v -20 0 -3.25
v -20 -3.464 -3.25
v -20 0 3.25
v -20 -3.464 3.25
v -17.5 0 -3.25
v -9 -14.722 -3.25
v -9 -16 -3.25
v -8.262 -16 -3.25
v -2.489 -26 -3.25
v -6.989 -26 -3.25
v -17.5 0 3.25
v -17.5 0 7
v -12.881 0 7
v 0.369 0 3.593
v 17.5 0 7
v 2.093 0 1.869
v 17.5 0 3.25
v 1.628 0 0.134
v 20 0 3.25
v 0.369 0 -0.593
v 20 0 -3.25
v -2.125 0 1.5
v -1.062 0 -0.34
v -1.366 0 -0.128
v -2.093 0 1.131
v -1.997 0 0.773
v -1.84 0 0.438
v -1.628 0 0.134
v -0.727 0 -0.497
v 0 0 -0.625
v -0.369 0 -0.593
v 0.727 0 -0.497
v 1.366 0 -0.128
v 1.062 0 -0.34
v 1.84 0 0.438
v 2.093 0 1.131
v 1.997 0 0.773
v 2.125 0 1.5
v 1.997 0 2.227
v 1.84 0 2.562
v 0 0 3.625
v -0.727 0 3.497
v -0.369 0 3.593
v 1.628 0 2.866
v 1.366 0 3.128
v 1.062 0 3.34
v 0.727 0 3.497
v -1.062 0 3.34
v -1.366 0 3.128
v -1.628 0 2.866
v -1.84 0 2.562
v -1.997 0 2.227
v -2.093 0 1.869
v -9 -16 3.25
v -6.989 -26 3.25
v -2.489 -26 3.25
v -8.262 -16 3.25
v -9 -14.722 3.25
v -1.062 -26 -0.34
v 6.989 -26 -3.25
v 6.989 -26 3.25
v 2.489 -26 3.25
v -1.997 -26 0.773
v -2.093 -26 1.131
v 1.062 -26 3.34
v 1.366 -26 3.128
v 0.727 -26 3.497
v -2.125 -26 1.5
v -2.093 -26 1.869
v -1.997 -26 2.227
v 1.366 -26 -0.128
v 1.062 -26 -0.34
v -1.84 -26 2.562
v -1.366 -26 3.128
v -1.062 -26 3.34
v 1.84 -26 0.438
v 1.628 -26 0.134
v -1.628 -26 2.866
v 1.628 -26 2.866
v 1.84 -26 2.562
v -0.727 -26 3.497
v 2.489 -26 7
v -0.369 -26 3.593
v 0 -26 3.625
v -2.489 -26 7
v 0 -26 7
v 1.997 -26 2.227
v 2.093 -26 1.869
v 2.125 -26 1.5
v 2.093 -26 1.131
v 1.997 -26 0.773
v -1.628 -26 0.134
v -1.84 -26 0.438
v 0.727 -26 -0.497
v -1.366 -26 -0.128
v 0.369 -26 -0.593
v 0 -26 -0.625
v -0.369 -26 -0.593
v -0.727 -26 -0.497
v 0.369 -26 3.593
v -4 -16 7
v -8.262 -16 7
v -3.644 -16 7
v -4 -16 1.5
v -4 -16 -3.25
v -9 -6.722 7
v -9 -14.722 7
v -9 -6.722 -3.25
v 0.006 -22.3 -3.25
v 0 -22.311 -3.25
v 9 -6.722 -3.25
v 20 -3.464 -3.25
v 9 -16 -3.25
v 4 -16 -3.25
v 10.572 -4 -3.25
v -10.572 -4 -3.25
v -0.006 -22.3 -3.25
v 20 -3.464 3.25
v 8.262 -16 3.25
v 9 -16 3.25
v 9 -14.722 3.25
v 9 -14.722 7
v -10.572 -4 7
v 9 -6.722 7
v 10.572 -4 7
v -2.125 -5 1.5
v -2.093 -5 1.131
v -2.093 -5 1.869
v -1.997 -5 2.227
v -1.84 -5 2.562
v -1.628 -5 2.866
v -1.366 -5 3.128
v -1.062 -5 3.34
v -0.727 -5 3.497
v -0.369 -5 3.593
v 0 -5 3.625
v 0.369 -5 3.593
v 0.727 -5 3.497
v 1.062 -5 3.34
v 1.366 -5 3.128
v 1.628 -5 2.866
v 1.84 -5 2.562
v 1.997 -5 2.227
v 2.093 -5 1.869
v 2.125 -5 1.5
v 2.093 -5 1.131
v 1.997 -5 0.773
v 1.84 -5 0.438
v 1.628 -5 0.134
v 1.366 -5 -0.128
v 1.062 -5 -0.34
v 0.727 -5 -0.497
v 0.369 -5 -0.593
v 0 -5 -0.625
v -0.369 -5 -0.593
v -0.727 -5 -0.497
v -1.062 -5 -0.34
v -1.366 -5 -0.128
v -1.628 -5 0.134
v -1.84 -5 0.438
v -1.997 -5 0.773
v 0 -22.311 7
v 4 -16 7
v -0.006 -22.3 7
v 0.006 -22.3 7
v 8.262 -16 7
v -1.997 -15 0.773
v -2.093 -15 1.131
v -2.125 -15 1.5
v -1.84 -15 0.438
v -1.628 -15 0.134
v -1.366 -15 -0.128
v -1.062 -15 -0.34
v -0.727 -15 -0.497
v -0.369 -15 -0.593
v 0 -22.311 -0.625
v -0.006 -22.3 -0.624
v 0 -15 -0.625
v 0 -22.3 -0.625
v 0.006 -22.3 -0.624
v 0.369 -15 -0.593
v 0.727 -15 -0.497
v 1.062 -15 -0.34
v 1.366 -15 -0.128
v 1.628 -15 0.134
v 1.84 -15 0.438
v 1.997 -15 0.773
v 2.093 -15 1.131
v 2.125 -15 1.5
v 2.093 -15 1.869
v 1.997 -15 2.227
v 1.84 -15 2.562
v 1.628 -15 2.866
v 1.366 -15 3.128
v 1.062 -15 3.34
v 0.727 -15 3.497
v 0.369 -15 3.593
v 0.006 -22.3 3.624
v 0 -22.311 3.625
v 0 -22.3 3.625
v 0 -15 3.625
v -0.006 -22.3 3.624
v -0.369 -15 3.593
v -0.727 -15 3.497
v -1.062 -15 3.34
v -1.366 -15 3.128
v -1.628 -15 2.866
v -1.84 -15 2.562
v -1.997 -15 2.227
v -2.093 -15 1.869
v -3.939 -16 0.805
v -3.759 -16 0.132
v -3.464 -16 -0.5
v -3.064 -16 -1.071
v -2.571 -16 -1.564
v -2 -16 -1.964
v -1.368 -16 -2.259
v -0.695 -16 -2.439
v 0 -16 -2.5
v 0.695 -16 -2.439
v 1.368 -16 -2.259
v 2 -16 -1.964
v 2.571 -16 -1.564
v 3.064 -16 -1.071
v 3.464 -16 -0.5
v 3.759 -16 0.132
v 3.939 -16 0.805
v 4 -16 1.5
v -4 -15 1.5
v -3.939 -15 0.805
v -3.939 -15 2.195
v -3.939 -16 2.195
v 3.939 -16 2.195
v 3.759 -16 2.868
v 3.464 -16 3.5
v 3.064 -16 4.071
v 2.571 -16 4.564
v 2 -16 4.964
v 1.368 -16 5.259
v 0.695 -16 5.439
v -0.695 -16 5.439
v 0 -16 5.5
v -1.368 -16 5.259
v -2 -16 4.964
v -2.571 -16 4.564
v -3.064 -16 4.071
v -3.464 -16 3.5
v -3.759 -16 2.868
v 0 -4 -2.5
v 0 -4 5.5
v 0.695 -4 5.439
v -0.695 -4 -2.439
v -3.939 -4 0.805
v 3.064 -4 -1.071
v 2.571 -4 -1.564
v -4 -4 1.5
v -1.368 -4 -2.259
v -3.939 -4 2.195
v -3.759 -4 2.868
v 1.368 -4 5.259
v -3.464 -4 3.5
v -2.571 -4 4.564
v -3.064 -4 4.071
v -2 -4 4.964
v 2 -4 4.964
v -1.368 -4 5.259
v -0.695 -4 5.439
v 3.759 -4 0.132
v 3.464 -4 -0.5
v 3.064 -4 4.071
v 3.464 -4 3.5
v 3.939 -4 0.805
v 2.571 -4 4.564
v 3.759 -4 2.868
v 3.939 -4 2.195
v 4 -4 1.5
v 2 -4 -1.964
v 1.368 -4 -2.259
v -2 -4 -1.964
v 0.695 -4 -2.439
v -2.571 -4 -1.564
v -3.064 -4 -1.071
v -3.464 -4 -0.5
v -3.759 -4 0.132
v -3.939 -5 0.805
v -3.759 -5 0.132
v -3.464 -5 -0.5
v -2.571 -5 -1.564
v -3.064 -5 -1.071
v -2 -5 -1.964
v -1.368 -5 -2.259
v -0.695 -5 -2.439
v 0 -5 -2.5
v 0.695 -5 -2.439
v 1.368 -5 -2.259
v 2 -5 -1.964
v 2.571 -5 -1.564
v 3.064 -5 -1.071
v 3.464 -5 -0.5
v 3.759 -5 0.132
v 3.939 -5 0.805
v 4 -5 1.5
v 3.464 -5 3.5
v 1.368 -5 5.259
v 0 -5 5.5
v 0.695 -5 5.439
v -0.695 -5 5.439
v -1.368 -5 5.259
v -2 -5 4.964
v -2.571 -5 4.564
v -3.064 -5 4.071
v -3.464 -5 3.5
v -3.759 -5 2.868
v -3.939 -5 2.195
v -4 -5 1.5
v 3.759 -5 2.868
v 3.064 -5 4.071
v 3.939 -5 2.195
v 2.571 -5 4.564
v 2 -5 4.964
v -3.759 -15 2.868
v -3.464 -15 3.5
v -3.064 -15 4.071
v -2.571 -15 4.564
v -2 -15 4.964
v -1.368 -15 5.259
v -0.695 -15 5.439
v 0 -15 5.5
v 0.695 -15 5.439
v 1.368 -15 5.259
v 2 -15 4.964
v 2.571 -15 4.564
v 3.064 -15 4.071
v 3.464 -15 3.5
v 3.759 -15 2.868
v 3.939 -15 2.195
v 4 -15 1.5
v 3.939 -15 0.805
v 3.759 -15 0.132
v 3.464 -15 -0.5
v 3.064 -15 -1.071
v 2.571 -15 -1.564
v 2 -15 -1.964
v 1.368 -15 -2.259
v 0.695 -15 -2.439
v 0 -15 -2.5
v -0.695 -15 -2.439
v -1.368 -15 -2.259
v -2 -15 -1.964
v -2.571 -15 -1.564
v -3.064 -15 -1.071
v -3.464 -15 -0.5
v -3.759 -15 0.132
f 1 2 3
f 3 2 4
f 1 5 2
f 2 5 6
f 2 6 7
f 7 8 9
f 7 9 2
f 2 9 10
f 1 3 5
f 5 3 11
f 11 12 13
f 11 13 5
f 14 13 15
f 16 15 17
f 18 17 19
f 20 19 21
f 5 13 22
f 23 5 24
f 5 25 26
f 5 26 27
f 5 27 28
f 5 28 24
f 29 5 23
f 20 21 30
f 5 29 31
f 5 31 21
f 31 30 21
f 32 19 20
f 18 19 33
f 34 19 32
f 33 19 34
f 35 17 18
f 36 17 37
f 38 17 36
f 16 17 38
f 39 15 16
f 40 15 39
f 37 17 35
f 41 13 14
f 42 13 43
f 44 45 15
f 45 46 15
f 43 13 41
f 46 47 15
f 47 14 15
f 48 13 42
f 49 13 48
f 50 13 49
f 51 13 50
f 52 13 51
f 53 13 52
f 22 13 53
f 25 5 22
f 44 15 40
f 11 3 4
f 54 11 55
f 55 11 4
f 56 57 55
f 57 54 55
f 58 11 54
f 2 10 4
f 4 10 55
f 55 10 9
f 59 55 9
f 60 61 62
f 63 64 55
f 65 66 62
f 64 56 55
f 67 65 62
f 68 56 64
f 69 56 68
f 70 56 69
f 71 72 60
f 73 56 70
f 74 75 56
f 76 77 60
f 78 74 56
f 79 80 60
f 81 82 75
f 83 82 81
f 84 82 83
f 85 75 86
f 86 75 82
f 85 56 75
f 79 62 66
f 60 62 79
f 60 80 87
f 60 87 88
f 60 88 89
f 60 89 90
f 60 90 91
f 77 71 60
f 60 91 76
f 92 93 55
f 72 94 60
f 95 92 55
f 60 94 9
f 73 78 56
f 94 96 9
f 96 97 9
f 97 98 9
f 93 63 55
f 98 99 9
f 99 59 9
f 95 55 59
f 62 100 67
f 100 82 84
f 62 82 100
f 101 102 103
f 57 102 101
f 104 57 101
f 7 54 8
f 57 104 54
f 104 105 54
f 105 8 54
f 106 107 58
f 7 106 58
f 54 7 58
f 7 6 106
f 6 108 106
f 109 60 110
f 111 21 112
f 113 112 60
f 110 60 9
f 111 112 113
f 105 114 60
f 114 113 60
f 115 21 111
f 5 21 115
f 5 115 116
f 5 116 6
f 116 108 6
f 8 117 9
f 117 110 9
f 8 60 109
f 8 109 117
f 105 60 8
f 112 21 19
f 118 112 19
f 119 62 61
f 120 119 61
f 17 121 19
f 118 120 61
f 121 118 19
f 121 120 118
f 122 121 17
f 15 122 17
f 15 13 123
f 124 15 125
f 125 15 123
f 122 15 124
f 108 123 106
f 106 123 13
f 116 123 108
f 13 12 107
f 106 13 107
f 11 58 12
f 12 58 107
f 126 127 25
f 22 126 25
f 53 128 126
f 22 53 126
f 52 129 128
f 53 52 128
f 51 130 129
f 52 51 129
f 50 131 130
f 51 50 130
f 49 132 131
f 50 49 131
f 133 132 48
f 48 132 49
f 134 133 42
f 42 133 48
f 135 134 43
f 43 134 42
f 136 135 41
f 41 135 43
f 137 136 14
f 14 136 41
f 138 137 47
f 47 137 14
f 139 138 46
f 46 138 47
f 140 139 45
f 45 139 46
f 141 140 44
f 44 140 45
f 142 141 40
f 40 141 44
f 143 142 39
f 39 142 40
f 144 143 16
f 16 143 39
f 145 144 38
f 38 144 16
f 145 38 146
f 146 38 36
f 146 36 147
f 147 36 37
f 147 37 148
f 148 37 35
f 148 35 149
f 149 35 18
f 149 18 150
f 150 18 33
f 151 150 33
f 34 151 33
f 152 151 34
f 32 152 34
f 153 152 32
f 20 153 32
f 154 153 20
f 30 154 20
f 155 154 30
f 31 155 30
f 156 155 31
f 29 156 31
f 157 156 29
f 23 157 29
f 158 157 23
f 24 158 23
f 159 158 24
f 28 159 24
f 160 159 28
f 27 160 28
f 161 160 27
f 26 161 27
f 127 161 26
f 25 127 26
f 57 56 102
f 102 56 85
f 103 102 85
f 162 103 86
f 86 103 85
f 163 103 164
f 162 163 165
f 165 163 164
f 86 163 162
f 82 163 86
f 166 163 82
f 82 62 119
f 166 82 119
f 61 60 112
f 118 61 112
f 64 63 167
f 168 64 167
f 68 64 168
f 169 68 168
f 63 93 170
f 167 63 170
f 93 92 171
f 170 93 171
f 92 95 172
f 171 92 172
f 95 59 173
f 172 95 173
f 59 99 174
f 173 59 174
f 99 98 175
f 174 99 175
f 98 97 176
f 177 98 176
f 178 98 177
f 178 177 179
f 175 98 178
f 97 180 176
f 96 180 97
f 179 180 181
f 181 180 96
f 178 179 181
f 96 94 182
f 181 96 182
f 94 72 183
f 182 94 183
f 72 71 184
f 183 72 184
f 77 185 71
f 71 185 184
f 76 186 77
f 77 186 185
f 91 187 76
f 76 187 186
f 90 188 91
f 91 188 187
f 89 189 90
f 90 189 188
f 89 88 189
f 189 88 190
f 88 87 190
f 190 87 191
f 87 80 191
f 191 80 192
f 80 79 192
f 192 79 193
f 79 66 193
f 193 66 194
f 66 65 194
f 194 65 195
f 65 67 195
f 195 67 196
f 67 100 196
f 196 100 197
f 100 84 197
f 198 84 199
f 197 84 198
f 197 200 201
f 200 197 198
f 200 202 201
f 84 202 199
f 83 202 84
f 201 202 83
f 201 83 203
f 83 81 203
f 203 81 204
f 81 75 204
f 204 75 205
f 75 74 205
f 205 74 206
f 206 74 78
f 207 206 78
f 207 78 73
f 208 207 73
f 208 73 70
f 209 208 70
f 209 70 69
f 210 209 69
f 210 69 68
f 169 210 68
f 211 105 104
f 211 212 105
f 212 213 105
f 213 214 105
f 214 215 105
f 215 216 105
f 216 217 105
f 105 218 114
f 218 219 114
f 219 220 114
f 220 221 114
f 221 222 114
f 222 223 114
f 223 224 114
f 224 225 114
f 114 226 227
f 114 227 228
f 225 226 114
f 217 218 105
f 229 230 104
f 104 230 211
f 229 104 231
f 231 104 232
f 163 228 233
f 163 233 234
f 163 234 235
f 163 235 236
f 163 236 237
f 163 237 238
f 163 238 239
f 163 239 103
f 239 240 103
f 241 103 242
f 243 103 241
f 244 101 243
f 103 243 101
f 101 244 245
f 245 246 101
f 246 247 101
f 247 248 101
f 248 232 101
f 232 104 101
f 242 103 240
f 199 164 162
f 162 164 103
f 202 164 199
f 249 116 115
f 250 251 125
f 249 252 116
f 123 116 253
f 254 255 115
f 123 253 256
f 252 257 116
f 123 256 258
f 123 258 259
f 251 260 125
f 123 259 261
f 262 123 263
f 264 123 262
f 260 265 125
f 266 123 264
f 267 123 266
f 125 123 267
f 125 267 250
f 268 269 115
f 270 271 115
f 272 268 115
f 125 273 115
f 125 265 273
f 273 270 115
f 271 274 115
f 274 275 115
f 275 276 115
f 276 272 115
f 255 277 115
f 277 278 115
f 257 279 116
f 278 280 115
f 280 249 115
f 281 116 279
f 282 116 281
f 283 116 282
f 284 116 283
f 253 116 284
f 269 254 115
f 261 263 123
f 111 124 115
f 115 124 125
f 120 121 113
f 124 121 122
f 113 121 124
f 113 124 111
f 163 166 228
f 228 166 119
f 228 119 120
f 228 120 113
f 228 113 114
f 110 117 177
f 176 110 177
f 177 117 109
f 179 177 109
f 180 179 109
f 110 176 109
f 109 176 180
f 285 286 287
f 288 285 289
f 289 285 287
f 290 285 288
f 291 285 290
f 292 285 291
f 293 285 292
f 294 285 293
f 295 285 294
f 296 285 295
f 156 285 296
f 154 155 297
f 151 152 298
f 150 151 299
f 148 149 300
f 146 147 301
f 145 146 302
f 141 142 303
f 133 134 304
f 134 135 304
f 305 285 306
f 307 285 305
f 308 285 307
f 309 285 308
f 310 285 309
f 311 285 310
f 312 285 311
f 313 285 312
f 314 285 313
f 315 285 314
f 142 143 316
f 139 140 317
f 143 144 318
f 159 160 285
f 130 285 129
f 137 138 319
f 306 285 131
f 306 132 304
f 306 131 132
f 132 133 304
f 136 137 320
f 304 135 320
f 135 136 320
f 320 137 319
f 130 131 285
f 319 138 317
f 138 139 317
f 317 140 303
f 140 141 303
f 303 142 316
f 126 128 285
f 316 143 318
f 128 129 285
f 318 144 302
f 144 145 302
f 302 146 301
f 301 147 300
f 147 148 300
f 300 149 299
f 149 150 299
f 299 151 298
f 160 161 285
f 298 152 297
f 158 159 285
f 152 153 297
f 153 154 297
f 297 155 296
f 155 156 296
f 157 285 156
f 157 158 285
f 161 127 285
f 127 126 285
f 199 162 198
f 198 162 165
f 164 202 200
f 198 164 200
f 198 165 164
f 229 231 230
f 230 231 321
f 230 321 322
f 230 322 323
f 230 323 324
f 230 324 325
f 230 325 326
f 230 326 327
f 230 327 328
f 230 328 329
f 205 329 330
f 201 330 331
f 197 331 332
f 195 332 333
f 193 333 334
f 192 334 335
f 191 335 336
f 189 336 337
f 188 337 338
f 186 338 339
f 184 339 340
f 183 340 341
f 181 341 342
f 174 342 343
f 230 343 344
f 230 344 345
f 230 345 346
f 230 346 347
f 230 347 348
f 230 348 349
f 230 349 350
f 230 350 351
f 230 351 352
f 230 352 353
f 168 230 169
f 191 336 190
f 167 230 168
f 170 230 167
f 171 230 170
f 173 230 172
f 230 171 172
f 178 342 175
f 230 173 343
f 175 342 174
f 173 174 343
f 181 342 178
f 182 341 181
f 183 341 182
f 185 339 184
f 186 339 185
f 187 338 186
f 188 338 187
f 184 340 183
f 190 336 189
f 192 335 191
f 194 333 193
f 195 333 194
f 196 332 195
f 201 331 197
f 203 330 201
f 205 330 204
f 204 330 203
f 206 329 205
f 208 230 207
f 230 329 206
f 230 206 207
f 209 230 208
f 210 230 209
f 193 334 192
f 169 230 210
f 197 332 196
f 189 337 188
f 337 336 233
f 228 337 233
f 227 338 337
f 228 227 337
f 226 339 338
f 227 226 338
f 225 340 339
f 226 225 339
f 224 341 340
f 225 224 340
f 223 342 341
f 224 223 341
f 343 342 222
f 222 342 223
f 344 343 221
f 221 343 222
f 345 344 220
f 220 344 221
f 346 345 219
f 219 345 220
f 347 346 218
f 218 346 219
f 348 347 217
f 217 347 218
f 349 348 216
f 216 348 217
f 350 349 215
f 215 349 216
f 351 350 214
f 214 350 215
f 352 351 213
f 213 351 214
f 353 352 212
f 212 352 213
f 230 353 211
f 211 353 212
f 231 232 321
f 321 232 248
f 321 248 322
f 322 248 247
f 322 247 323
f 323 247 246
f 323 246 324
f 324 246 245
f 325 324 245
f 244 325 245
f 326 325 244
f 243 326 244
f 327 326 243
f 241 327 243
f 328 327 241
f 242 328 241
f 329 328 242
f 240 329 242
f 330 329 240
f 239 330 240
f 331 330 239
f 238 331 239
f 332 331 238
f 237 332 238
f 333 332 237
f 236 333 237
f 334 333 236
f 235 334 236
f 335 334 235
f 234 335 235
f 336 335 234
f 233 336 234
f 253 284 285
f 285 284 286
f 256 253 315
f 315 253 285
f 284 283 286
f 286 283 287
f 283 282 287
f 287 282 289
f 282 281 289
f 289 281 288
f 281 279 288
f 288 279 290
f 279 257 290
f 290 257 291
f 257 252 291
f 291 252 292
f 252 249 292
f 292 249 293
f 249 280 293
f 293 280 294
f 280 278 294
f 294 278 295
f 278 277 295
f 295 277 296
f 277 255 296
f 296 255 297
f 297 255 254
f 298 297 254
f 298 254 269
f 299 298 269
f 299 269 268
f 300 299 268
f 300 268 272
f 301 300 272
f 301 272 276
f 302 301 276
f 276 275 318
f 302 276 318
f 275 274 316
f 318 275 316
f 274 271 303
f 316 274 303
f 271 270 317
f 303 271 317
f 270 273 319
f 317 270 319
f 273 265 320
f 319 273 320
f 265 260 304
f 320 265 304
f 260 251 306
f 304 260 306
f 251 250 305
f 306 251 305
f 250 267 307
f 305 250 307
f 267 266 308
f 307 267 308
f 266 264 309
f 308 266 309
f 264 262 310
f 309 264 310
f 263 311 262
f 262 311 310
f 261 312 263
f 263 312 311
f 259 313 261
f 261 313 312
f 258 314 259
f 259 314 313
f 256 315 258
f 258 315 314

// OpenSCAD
// Idler Mount
thickness=4;
width = 30;

$fn=36;

rotate([90,0,0])
{
difference()
{
union()
{
intersection()
{
	difference()
	{
		// Solids
		union()
		{
	
			translate( [-width/2,-7,0] ) cube([width,14,4]);
	
			for( a=[0:180:359] ) rotate([0,0,a]) 
			{
	
				translate( [width/2+2.5,-7,0] )	
				rotate([0,-120,0]) 
				{
					cube([40,14,thickness]);
		
				}
	
				translate( [width/2+7,-3.25,0] )	
				rotate([0,-120,0]) 
				{
					cube([40,6.5,5]);
		
				}
	
			}
	
			
			translate([0,1.5,0]) cylinder( d=8, h=20 );
			
	
		}
	

		translate([-9,-10,5]) cube( [18,20,11] );
	
	}
		translate([-20,-3.25,0]) cube( [40,20,26] );
	
}			

translate([0,1.5,15]) cylinder( d=8, h=2 );
translate([-4,-3.25,16]) cube([8,10.25,6.3]);

}
		// Holes
		translate([0,1.5,0]) cylinder( d=4.25, h=50 );
}
}
